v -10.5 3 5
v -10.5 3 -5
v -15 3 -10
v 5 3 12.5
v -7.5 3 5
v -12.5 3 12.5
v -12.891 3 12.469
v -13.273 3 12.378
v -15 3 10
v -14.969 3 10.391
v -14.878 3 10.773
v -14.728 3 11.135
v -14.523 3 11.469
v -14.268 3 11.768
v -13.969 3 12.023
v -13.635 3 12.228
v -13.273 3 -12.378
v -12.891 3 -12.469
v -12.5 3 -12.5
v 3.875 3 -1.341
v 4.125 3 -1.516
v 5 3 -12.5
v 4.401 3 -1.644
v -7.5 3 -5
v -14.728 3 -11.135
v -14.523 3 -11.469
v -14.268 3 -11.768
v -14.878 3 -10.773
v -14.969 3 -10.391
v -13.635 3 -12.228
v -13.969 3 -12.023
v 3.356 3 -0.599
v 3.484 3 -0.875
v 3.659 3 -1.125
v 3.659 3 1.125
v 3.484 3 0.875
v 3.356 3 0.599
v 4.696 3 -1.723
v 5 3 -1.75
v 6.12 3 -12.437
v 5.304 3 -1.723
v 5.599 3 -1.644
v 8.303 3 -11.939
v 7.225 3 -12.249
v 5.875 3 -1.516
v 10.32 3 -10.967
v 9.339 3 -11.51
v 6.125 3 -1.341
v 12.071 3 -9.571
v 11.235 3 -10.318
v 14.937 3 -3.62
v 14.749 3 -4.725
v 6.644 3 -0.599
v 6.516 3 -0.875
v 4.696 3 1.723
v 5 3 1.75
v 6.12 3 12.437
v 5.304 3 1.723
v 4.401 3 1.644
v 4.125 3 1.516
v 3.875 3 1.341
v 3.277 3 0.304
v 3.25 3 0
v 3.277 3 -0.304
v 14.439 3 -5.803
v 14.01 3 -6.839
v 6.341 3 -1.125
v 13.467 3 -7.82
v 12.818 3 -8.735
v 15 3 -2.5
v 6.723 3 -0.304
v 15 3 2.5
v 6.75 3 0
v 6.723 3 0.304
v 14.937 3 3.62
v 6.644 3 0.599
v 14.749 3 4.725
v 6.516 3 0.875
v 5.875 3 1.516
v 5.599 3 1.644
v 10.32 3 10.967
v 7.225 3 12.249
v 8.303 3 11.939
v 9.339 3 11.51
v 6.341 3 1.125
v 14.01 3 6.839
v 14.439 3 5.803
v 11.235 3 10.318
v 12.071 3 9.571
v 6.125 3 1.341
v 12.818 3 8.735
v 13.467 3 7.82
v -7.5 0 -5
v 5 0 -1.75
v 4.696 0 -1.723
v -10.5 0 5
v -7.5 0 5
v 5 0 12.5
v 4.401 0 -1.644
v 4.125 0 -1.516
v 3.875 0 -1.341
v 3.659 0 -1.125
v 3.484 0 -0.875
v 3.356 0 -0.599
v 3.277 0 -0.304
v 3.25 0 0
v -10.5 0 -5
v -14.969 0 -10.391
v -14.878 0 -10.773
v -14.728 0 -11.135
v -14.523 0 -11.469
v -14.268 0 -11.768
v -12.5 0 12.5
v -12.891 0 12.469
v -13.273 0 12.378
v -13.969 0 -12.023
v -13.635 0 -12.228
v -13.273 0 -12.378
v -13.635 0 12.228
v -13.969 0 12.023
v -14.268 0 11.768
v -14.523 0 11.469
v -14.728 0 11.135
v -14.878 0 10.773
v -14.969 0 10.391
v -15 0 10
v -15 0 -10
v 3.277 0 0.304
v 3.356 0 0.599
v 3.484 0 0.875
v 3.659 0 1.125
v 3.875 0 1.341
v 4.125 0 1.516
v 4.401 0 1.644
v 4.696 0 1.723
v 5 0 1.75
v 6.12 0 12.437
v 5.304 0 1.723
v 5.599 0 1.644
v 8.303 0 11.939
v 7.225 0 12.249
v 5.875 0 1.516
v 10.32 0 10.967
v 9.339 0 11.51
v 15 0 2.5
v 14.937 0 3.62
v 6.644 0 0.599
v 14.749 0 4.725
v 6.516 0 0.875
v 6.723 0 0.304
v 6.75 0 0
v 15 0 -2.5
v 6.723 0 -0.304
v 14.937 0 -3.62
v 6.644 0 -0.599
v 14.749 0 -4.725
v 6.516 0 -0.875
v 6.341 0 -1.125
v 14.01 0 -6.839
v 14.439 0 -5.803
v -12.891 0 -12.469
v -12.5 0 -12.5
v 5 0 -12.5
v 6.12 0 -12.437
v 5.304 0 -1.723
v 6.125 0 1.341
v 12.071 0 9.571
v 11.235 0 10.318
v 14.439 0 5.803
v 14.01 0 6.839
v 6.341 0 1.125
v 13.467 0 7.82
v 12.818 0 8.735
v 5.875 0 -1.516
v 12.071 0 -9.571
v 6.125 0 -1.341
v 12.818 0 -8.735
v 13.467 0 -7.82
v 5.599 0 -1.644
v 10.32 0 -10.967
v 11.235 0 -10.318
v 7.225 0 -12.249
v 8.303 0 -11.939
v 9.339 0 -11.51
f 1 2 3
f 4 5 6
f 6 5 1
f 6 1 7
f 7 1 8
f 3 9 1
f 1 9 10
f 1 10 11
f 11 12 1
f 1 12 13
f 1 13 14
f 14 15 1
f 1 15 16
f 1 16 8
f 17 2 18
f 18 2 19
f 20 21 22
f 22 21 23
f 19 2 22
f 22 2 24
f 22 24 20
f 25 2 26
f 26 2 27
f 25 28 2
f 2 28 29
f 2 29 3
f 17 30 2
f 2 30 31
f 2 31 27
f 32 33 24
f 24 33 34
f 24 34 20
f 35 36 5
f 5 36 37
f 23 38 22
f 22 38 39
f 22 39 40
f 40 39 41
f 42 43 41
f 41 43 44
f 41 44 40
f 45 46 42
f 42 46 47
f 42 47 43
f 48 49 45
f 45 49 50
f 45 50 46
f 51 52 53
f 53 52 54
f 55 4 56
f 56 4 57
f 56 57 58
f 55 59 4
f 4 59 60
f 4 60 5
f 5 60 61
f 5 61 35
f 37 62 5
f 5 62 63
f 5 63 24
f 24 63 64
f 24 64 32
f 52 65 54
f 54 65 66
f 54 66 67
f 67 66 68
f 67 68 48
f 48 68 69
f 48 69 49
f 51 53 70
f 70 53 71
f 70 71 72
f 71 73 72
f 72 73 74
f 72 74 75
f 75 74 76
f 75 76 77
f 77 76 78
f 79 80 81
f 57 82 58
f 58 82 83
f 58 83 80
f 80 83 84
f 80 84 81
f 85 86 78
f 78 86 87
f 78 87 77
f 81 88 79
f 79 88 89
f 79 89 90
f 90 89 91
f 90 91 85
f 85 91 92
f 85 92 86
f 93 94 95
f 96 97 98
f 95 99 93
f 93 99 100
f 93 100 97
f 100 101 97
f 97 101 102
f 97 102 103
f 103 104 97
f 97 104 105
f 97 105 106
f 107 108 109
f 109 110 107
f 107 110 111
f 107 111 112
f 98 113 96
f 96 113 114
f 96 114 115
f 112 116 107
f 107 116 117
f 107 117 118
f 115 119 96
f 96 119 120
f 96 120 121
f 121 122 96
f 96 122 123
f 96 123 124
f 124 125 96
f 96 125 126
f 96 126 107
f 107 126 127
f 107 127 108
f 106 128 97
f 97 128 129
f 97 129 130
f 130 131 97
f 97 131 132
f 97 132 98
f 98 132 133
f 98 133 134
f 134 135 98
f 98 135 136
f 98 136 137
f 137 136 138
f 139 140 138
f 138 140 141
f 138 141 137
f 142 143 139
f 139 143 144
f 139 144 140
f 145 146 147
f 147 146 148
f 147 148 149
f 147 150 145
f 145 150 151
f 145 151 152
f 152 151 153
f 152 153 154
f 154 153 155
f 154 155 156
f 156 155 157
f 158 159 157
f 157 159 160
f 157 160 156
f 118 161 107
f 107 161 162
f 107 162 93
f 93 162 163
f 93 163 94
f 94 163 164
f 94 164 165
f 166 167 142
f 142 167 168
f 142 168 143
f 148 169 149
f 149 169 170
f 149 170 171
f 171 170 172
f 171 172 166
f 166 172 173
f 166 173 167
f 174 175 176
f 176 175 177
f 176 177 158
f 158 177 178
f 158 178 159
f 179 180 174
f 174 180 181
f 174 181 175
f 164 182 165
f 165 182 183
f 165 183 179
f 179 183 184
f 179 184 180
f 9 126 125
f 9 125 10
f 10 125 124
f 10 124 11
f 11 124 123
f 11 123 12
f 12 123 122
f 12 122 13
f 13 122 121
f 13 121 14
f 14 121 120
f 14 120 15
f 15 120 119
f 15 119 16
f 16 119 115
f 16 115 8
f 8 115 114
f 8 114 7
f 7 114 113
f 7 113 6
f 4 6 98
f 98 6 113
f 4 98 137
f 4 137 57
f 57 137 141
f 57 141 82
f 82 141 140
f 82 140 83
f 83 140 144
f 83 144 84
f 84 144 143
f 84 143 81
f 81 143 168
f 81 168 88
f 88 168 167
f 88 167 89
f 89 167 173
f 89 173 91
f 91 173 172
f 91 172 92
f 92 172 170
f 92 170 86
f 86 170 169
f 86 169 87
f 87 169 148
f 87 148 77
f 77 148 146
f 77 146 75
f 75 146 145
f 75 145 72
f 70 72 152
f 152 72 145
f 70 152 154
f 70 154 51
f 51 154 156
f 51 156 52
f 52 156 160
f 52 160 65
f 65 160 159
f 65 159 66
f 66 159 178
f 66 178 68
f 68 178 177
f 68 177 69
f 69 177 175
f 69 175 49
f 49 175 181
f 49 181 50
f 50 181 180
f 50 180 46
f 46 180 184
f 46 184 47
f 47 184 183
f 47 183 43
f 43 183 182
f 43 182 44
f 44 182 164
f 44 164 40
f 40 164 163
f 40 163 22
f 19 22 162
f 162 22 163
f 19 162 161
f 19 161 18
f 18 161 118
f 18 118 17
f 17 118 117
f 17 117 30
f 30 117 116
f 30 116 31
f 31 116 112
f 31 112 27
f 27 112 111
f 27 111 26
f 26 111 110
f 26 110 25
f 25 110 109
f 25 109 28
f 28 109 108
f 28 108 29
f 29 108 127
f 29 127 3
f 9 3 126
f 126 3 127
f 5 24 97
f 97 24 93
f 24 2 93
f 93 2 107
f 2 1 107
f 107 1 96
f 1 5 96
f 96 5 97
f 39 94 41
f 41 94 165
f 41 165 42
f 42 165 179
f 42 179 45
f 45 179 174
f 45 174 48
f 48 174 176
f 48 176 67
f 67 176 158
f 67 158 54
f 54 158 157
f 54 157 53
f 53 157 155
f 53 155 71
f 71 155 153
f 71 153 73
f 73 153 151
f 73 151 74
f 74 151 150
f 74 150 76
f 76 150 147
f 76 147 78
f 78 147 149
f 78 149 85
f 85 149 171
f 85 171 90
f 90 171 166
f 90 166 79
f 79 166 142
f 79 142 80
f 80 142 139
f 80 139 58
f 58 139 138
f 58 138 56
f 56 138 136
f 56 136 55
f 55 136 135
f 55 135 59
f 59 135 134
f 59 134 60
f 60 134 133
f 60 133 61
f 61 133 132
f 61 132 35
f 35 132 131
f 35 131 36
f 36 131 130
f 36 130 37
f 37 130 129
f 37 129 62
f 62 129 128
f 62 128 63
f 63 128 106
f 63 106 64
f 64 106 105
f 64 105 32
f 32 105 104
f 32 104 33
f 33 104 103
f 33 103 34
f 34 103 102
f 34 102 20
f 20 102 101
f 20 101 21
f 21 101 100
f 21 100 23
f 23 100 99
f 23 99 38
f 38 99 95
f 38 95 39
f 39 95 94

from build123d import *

# Parameters (mm, degrees)
SKETCH1_R           = 1.75
SKETCH1_W           = 3
SKETCH1_H           = 10
BOSS_EXTRUDE1_DEPTH = 3


with BuildPart() as part:
    # Sketch1 → Boss-Extrude1 (new body)
    with BuildSketch(Plane(origin=(0, 0, 0), x_dir=(1, 0, 0), z_dir=(0, 1, 0))):
        with BuildLine():
            Line((-12.5, -12.5), (5, -12.5))
            ThreePointArc((5, -12.5), (12.071067812, -9.571067812), (15, -2.5))
            Line((15, -2.5), (15, 2.5))
            ThreePointArc((15, 2.5), (12.071067812, 9.571067812), (5, 12.5))
            Line((5, 12.5), (-12.5, 12.5))
            ThreePointArc((-12.5, 12.5), (-14.267766953, 11.767766953), (-15, 10))
            Line((-15, 10), (-15, -10))
            ThreePointArc((-15, -10), (-14.267766953, -11.767766953), (-12.5, -12.5))
        make_face()
        with Locations(Location((5, 0, 0), (0, 0, 270))):
            Circle(SKETCH1_R, mode=Mode.SUBTRACT)
        with Locations((-9, 0)):
            Rectangle(SKETCH1_W, SKETCH1_H, mode=Mode.SUBTRACT)
    extrude(amount=BOSS_EXTRUDE1_DEPTH)


solid = part.part
